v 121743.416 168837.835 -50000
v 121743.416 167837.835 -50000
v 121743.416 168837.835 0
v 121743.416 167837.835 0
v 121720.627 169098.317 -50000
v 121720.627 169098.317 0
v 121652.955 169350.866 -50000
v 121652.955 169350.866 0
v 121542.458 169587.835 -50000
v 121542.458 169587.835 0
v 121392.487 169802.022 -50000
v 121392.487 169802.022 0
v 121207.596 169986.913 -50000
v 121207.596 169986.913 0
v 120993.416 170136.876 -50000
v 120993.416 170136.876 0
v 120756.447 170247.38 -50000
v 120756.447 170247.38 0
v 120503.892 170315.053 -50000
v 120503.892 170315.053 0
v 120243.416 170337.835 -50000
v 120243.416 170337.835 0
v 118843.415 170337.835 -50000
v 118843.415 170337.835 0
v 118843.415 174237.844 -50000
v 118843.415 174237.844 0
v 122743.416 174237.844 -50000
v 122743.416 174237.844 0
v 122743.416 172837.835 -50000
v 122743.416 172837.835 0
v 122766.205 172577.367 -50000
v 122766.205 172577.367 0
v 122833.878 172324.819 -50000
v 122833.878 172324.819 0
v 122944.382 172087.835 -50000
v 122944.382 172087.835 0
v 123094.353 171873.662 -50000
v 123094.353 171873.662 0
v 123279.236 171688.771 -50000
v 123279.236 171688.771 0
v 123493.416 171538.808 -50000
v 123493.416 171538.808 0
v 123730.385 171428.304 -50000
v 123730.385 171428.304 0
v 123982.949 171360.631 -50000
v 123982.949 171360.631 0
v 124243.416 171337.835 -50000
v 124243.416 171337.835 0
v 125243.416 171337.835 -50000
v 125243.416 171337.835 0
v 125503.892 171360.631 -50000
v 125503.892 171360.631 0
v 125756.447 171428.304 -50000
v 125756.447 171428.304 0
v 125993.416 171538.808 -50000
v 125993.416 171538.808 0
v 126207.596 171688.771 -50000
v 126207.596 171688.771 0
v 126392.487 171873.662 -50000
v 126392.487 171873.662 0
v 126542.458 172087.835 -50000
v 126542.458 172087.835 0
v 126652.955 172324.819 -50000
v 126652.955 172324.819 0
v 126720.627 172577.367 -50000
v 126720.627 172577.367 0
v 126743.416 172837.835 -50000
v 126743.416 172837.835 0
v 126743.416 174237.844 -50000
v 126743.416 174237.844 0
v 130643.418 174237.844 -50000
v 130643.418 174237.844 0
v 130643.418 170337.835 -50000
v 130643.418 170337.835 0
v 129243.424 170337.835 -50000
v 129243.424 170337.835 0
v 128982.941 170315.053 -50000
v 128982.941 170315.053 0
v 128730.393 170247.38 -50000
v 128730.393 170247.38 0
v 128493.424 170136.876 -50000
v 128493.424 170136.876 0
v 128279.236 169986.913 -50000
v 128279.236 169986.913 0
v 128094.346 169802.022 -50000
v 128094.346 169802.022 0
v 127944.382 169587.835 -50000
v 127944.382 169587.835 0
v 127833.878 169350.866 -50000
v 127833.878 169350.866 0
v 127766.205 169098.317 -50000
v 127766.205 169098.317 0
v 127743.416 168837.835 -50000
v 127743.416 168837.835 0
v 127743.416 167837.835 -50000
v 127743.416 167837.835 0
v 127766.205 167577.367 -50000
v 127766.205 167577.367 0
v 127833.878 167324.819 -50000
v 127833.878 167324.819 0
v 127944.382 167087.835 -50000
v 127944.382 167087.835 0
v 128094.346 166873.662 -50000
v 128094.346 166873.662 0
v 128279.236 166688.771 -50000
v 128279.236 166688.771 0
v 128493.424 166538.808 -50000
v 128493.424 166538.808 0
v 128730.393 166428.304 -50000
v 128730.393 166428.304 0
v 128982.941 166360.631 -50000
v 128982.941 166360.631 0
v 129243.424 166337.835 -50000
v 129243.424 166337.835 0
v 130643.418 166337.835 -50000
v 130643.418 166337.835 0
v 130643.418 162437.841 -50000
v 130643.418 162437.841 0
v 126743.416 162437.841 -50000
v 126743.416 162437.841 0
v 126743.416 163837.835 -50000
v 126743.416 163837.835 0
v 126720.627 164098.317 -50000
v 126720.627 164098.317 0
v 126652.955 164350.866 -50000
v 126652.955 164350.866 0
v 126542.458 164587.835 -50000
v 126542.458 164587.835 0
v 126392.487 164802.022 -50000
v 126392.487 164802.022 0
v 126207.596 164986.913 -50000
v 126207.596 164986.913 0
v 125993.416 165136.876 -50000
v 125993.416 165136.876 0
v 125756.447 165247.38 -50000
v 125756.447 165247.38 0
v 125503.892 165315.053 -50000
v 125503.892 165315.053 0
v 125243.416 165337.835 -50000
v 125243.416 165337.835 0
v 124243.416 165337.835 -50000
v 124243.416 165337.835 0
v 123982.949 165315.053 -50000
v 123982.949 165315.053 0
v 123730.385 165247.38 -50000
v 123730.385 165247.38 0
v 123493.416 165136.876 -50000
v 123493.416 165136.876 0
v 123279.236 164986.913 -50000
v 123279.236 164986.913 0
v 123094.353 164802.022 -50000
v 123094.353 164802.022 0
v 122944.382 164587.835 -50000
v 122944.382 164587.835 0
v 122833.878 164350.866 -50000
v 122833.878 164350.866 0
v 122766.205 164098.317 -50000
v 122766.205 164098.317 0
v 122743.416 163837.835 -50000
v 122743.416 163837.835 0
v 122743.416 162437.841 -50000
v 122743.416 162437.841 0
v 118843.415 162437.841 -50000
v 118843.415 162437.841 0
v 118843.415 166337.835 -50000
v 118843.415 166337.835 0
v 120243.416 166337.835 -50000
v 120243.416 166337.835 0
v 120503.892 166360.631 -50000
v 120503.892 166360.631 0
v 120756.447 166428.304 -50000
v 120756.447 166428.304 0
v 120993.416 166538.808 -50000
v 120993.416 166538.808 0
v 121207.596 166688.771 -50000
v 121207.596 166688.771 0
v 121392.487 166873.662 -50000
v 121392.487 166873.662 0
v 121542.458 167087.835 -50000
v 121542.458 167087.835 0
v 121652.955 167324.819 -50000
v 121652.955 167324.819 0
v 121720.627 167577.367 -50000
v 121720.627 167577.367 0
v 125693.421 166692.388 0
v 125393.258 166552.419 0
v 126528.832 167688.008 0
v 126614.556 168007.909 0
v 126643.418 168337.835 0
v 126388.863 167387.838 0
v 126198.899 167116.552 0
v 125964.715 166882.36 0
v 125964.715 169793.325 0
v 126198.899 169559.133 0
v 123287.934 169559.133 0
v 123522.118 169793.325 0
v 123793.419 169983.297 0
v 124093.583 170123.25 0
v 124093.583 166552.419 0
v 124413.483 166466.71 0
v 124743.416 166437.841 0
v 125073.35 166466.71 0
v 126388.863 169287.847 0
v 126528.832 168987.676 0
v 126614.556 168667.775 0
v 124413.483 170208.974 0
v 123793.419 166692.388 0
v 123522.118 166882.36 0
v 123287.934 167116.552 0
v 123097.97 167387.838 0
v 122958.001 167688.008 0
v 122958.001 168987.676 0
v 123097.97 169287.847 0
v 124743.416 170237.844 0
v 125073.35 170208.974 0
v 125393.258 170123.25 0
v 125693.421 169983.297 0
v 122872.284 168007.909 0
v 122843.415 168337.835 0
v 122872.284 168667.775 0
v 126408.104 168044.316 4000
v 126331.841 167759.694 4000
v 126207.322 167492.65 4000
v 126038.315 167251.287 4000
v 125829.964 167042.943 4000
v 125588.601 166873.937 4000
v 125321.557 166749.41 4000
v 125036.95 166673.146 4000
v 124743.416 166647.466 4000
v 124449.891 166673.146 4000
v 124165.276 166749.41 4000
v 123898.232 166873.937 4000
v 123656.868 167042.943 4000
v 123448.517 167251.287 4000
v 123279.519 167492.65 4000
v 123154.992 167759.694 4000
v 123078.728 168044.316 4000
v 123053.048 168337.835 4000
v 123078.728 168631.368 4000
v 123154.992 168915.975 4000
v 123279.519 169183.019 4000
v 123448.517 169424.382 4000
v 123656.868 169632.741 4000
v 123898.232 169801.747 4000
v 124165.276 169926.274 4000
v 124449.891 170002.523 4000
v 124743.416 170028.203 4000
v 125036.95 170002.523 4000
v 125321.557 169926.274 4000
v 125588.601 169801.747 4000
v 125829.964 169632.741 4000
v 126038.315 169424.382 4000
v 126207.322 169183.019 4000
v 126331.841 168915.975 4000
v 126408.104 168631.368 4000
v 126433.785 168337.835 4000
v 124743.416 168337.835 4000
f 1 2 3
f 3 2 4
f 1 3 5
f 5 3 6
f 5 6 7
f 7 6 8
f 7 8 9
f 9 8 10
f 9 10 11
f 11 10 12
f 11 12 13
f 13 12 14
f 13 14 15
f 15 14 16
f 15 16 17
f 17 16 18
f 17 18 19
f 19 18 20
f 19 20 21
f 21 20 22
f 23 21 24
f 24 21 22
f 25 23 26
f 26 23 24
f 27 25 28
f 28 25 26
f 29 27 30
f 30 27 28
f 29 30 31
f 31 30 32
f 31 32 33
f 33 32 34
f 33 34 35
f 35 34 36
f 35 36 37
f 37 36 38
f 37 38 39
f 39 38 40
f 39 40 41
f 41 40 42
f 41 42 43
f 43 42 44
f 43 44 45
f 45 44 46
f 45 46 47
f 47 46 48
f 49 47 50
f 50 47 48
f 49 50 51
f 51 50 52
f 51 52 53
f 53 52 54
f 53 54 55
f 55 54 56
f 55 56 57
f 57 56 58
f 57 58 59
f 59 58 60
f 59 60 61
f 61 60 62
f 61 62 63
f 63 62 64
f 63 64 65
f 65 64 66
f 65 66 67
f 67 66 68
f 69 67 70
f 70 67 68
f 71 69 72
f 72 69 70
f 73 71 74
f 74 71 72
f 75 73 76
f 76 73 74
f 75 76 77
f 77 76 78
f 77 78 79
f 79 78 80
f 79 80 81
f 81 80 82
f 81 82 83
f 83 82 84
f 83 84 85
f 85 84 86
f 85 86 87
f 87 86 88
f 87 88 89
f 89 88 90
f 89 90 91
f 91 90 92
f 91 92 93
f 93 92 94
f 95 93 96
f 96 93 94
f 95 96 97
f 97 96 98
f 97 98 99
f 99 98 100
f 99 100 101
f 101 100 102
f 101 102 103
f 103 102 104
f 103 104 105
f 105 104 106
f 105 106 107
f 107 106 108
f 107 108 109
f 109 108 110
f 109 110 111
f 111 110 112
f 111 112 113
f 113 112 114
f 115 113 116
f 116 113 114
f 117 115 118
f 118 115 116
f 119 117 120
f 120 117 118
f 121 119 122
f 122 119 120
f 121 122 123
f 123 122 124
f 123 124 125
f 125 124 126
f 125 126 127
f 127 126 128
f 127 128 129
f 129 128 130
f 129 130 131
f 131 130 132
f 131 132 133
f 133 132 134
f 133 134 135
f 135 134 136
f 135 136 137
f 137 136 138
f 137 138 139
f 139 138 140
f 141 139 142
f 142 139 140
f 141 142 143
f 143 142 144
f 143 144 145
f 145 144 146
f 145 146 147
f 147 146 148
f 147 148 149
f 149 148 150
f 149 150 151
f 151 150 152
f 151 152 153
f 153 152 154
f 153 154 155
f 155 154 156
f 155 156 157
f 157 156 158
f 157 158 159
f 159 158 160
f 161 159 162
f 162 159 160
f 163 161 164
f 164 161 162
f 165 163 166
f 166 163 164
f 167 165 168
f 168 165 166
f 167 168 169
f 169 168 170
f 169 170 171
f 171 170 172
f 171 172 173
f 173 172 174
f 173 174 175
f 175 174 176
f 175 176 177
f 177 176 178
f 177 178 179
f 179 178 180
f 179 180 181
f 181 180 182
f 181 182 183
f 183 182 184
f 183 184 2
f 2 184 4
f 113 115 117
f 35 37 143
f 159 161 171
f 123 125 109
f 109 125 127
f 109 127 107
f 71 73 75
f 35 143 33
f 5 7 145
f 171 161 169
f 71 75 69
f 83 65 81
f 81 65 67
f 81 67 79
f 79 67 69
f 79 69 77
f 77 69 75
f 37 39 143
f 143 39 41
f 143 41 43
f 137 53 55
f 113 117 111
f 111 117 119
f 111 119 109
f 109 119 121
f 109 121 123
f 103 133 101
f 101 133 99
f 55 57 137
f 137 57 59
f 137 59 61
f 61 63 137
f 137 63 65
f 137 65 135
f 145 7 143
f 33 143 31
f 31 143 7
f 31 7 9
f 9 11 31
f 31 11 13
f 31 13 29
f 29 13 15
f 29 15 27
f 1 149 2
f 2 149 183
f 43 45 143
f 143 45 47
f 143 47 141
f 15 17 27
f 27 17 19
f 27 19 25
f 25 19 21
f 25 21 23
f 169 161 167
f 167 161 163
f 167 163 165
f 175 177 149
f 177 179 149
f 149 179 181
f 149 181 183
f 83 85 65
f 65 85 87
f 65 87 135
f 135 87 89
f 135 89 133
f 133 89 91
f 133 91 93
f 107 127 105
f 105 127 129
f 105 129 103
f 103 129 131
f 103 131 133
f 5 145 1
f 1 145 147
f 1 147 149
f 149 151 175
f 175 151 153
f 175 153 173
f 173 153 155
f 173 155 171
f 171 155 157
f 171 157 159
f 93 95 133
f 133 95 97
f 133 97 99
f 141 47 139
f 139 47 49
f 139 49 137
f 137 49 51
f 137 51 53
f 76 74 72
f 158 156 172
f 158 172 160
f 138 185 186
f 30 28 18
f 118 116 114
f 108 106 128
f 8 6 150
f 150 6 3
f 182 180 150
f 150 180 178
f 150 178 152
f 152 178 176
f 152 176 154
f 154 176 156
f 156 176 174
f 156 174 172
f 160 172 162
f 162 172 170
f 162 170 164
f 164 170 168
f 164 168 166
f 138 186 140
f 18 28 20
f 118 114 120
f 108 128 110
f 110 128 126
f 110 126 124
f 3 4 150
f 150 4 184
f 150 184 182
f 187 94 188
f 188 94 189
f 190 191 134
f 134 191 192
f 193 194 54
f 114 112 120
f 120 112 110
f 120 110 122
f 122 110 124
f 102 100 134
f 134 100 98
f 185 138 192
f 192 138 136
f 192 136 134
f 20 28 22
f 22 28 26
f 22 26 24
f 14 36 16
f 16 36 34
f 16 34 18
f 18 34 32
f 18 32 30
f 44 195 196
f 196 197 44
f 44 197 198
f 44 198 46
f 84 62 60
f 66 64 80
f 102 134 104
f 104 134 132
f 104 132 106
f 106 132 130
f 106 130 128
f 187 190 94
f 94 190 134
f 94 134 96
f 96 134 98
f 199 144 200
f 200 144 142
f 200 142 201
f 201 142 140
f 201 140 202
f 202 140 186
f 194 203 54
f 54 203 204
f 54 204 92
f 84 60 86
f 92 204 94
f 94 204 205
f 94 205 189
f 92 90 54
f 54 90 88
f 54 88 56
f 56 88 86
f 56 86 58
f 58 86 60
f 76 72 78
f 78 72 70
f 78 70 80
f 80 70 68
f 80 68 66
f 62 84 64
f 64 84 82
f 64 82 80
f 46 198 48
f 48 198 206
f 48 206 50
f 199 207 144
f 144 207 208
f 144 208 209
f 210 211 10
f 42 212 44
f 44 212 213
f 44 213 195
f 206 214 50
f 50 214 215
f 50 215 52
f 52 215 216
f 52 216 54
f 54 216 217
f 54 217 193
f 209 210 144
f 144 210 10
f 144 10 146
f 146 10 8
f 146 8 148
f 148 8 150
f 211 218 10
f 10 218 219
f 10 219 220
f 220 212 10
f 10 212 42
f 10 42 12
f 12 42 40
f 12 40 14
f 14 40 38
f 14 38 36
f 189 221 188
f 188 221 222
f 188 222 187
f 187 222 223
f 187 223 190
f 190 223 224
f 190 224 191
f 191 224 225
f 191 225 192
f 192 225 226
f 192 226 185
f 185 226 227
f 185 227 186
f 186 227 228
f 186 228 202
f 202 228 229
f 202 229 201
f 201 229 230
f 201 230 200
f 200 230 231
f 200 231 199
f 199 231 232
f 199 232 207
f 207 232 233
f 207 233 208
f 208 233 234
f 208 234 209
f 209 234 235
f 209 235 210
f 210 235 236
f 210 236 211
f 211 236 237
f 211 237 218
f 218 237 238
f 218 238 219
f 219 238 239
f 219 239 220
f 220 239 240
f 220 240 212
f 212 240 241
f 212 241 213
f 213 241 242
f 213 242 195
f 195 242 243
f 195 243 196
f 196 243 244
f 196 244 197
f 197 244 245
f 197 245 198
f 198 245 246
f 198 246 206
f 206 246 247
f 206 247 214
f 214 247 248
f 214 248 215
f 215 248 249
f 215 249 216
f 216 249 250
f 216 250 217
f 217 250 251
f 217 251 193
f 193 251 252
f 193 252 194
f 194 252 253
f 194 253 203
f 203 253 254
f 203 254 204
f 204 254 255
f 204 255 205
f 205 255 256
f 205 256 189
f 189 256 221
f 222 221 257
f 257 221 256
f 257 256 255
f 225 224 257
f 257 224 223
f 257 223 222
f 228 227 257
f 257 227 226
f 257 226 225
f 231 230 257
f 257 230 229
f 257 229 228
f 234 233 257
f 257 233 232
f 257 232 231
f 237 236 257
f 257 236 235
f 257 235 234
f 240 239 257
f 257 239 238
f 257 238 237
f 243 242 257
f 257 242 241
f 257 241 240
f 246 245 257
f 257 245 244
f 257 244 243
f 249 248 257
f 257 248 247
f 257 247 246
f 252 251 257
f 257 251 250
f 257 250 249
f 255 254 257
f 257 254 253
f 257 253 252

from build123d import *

# Parameters (mm, degrees)
SALIENTE_EXTRUIR1_DEPTH = 50000
CROQUIS1_9_R            = 1900
SALIENTE_EXTRUIR2_DEPTH = 4000
SALIENTE_EXTRUIR2_TAPER = 3


with BuildPart() as part:
    # Croquis1 → Saliente-Extruir1 (new body)
    with BuildSketch(Plane.XY):
        with BuildLine():
            Line((126743.416897498, 163837.836627923), (126743.416897498, 162437.836627923))
            Line((126743.416897498, 162437.836627923), (130643.416897498, 162437.836627923))
            Line((130643.416897498, 162437.836627923), (130643.416897498, 166337.836627923))
            Line((130643.416897498, 166337.836627923), (129243.416897498, 166337.836627923))
            ThreePointArc((129243.416897498, 166337.836627923), (128182.756725718, 166777.176456144), (127743.416897498, 167837.836627923))
            Line((127743.416897498, 167837.836627923), (127743.416897498, 168837.836627923))
            ThreePointArc((127743.416897498, 168837.836627923), (128182.756725718, 169898.496799703), (129243.416897498, 170337.836627923))
            Line((129243.416897498, 170337.836627923), (130643.416897498, 170337.836627923))
            Line((130643.416897498, 170337.836627923), (130643.416897498, 174237.836627923))
            Line((130643.416897498, 174237.836627923), (126743.416897498, 174237.836627923))
            Line((126743.416897498, 174237.836627923), (126743.416897498, 172837.836627923))
            ThreePointArc((126743.416897498, 172837.836627923), (126304.077069278, 171777.176456144), (125243.416897498, 171337.836627923))
            Line((125243.416897498, 171337.836627923), (124243.416897498, 171337.836627923))
            ThreePointArc((124243.416897498, 171337.836627923), (123182.756725718, 171777.176456144), (122743.416897498, 172837.836627923))
            Line((122743.416897498, 172837.836627923), (122743.416897498, 174237.836627923))
            Line((122743.416897498, 174237.836627923), (118843.416897498, 174237.836627923))
            Line((118843.416897498, 174237.836627923), (118843.416897498, 170337.836627923))
            Line((118843.416897498, 170337.836627923), (120243.416897498, 170337.836627923))
            ThreePointArc((120243.416897498, 170337.836627923), (121304.077069278, 169898.496799703), (121743.416897498, 168837.836627923))
            Line((121743.416897498, 168837.836627923), (121743.416897498, 167837.836627923))
            ThreePointArc((121743.416897498, 167837.836627923), (121304.077069278, 166777.176456144), (120243.416897498, 166337.836627923))
            Line((120243.416897498, 166337.836627923), (118843.416897498, 166337.836627923))
            Line((118843.416897498, 166337.836627923), (118843.416897498, 162437.836627923))
            Line((118843.416897498, 162437.836627923), (122743.416897498, 162437.836627923))
            Line((122743.416897498, 162437.836627923), (122743.416897498, 163837.836627923))
            ThreePointArc((122743.416897498, 163837.836627923), (123182.756725718, 164898.496799703), (124243.416897498, 165337.836627923))
            Line((124243.416897498, 165337.836627923), (125243.416897498, 165337.836627923))
            ThreePointArc((125243.416897498, 165337.836627923), (126304.077069278, 164898.496799703), (126743.416897498, 163837.836627923))
        make_face()
    extrude(amount=-SALIENTE_EXTRUIR1_DEPTH)

    # Croquis1<9> → Saliente-Extruir2 (add)
    with BuildSketch(Plane.XY):
        with Locations((124743.416897498, 168337.836627923)):
            Circle(CROQUIS1_9_R)
    extrude(amount=SALIENTE_EXTRUIR2_DEPTH, taper=SALIENTE_EXTRUIR2_TAPER)


solid = part.part
